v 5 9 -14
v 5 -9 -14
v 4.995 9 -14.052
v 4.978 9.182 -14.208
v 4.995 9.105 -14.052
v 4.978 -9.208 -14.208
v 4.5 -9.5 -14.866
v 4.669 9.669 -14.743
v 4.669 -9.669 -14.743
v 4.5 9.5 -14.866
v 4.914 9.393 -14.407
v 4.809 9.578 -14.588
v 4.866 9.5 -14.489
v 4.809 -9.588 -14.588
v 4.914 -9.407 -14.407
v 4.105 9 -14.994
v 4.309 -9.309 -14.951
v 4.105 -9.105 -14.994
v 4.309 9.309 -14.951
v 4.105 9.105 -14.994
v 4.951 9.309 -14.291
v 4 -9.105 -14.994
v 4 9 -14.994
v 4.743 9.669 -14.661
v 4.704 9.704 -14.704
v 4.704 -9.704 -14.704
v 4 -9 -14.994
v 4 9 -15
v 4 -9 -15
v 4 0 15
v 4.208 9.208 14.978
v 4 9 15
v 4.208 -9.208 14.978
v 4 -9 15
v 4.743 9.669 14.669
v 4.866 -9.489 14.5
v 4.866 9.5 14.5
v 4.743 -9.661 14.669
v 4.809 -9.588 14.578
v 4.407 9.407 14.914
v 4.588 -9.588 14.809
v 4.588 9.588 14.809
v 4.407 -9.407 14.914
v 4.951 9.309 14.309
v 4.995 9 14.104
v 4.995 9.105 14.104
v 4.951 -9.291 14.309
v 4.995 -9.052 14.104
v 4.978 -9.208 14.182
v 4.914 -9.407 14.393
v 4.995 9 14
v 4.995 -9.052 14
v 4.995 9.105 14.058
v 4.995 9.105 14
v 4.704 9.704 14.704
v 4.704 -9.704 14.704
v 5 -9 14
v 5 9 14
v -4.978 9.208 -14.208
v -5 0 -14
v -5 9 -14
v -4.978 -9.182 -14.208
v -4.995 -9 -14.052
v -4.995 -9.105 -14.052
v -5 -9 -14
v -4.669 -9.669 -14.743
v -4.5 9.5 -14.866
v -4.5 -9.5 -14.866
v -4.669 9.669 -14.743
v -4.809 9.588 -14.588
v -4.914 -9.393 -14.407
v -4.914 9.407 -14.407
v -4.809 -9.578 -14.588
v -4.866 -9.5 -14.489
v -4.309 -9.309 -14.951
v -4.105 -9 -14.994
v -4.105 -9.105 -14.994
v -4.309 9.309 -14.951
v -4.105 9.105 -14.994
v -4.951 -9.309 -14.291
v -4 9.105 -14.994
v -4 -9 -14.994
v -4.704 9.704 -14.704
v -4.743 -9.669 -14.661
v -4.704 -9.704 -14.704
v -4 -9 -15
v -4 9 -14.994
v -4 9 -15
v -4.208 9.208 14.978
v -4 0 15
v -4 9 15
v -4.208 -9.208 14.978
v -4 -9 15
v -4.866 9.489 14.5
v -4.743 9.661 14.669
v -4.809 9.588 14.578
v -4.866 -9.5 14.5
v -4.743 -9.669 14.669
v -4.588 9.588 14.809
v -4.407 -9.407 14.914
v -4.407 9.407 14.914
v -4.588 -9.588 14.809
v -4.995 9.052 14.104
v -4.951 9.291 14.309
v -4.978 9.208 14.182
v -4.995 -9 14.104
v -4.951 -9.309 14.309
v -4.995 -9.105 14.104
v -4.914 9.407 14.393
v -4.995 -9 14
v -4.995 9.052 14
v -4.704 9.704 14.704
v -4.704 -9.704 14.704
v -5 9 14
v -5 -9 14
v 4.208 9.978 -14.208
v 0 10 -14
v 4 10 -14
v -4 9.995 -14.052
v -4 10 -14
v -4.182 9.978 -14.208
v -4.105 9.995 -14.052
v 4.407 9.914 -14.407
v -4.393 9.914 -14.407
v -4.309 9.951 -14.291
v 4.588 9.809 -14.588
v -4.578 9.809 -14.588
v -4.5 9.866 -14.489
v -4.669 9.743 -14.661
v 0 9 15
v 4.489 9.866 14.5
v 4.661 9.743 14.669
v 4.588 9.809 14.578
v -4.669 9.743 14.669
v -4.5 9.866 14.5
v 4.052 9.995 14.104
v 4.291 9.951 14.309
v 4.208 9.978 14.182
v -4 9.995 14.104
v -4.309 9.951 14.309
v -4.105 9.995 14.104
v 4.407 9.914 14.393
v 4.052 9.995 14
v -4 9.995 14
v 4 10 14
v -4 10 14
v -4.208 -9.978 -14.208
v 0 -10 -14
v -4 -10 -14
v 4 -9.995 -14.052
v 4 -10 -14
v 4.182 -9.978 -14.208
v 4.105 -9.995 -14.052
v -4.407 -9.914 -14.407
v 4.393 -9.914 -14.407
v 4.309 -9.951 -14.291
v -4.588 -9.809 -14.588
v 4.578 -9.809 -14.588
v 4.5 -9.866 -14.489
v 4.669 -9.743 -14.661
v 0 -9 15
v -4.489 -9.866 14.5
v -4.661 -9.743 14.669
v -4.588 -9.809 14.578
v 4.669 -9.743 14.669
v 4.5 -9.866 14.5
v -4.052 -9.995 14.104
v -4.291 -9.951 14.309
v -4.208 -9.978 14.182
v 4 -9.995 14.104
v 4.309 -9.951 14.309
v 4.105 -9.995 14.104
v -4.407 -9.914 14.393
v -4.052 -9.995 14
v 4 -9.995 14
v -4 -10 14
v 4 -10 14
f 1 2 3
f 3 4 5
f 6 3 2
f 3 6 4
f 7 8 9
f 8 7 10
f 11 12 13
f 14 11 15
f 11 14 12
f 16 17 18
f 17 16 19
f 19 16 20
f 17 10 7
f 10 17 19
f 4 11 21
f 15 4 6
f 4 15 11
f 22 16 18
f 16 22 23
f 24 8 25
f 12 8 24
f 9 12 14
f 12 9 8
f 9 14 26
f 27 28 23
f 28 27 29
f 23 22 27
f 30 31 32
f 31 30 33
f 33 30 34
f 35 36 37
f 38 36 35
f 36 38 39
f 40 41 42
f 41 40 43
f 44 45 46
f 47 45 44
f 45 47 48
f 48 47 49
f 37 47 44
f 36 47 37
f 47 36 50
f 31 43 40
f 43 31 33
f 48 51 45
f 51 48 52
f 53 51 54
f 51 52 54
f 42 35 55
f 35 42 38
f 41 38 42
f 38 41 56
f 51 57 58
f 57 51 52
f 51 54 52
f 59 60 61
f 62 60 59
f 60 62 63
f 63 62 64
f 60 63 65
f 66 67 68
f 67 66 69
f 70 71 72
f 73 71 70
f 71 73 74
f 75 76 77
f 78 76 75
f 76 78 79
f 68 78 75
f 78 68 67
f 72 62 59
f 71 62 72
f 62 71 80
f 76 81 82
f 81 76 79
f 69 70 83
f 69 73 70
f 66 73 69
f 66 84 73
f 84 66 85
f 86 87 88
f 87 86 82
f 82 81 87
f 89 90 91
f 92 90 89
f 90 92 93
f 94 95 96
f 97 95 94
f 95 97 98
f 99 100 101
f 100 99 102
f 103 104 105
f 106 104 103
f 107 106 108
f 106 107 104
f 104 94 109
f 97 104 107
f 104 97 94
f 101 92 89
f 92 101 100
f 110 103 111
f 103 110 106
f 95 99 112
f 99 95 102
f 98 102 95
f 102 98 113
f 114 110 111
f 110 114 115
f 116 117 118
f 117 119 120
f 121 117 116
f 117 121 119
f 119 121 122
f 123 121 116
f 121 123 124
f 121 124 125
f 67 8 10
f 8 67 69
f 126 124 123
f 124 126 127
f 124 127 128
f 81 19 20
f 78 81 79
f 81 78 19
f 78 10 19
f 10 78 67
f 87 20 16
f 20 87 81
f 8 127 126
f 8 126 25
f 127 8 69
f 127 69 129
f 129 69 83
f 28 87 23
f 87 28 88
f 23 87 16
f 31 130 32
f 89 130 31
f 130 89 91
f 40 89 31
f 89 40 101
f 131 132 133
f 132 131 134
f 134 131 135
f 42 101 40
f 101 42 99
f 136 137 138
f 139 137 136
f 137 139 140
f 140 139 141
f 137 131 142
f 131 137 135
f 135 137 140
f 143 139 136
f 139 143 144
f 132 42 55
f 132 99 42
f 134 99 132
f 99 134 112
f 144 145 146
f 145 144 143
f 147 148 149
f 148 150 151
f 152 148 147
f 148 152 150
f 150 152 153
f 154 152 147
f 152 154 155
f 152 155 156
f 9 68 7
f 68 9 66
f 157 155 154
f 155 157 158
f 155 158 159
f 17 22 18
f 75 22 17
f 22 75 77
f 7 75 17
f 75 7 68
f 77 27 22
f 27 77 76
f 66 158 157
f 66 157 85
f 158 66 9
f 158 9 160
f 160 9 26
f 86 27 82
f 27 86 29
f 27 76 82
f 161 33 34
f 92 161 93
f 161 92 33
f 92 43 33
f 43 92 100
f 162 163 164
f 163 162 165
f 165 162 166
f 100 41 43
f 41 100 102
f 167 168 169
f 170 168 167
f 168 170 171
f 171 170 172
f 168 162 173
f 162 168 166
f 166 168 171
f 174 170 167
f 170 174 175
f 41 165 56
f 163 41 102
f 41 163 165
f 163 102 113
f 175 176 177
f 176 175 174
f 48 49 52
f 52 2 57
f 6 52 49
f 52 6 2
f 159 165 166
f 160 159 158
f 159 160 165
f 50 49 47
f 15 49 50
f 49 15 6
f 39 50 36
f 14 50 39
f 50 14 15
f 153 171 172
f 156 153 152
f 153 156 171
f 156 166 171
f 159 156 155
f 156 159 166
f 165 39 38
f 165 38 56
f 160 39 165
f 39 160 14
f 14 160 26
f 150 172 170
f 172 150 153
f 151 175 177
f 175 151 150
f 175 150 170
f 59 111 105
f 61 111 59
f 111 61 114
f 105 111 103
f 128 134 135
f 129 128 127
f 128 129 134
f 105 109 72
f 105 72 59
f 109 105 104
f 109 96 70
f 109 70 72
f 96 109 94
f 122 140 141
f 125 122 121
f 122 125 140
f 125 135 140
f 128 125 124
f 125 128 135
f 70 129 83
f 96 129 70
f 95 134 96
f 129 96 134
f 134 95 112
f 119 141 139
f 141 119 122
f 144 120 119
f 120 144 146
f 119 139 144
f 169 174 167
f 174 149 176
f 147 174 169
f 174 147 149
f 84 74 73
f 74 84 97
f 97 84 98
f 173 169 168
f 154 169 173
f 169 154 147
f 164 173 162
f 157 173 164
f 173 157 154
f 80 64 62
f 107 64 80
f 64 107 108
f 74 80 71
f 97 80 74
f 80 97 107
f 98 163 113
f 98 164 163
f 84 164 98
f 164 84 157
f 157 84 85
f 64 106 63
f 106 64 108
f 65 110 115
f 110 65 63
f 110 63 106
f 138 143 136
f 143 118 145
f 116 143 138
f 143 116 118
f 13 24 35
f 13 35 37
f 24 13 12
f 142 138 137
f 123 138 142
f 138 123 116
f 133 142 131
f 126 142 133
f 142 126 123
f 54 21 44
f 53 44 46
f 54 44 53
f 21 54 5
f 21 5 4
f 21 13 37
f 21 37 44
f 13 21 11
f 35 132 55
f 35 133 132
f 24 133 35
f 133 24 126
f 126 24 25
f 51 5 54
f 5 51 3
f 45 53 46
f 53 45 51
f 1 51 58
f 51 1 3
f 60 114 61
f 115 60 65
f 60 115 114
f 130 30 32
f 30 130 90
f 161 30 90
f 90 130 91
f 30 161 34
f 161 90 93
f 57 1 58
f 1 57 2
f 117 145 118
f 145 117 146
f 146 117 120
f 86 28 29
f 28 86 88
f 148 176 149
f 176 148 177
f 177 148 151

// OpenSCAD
// file: negative_cylinder.scad
//
// Create the negative of a cylinder with a hollow cube.
// The cube will be of size [2*r + t, 2*r + t, h], and the cylinder will
// be subtracted from it. You could specify an angle for the cylinder. For
// example 360 will make a whole cylinder, 180 half cylinder and 90 quarter 
// of a cylinder.
// Params:
//   r -- Radio of the cylinder.
//   h -- Height of the cylinder.
//   t -- Thickness of the cube that will hold the negative of the cylinder.
//   angle -- [0-360] How much cylinder to build (360 whole cylinder, 
//            180 half cylinder, 90 quarter of cylinder, 0 no cylinder).
//   center -- [true, false] Center the object on origin [0, 0, 0]. 
//
module negative_cylinder(r=10, h=20, t=2, angle=360, center=false, $fn=10) 
{
  difference() 
  {
    cube([2*r + t, 2*r + t, h], center=center); 
    cylinder(r=r, h=h+2, center=center, $fn=$fn);
    translate([0, 0, -h])
      rotate_extrude(angle=360-angle)
        square([2*(r+t), 2*h]);
  }
}


negative_cylinder(r=10, h=20, t=2, center=true, $fn=50);

translate([30, 0, 0])
  negative_cylinder(r=5, h=20, t=5, angle=90, center=true, $fn=50);

translate([60, 0, 0])
  negative_cylinder(r=8, h=20, t=1, angle=180, center=true, $fn=50);

translate([90, 0, 0])
  negative_cylinder(r=3, h=20, t=9, angle=270, center=true, $fn=50);
// main file
use <negative_cylinder.scad>


module round_cube(size=10, roundness=3, center=false, $fn=20)
{
  // Get width, depth and height from size parameter.
  width = (size[0] != undef) ? size[0] : size;
  depth = (size[1] != undef) ? size[1] : size;
  height = (size[2] != undef) ? size[2] : size;

  difference() 
  {
    cube(size=size, center=center);

    for (i = [0, 180])
      for (j = [-1, 1])
        rotate([0, 0, i])
          translate([width/2-(roundness-2), 0, j * (height/2-(roundness-2))])
            rotate([0, -45 - j*45, 0])
            rotate([90, 0, 0])
              negative_cylinder(r=roundness-2, h=depth+2, t=2, angle=90, center=true, $fn=30);
    for (i = [90, 270])
      for (j = [-1, 1])
        rotate([0, 0, i])
          translate([depth/2-(roundness-2), 0, j * (height/2-(roundness-2))])
            rotate([0, -45 - j*45, 0])
            rotate([90, 0, 0])
              negative_cylinder(r=roundness-2, h=width+2, t=2, angle=90, center=true, $fn=30);

    for (i = [0, 180])
      rotate([0, 0, i])
        translate([width/2-(roundness-2), -depth/2+(roundness-2), 0])
          negative_cylinder(r=roundness-2, h=height+2, t=2, angle=90, center=true, $fn=30);

    for (i = [90, 270])
      rotate([0, 0, i])
        translate([-depth/2+(roundness-2), width/2-(roundness-2),  0])
          rotate([0,0,180])
          negative_cylinder(r=roundness-2, h=height+2, t=2, angle=90, center=true, $fn=30);
  }
}

SIZE = [10, 20, 30];


ROUNDNESS = 3;

round_cube(size=SIZE, roundness=ROUNDNESS, center=true, $fn=$fn);
